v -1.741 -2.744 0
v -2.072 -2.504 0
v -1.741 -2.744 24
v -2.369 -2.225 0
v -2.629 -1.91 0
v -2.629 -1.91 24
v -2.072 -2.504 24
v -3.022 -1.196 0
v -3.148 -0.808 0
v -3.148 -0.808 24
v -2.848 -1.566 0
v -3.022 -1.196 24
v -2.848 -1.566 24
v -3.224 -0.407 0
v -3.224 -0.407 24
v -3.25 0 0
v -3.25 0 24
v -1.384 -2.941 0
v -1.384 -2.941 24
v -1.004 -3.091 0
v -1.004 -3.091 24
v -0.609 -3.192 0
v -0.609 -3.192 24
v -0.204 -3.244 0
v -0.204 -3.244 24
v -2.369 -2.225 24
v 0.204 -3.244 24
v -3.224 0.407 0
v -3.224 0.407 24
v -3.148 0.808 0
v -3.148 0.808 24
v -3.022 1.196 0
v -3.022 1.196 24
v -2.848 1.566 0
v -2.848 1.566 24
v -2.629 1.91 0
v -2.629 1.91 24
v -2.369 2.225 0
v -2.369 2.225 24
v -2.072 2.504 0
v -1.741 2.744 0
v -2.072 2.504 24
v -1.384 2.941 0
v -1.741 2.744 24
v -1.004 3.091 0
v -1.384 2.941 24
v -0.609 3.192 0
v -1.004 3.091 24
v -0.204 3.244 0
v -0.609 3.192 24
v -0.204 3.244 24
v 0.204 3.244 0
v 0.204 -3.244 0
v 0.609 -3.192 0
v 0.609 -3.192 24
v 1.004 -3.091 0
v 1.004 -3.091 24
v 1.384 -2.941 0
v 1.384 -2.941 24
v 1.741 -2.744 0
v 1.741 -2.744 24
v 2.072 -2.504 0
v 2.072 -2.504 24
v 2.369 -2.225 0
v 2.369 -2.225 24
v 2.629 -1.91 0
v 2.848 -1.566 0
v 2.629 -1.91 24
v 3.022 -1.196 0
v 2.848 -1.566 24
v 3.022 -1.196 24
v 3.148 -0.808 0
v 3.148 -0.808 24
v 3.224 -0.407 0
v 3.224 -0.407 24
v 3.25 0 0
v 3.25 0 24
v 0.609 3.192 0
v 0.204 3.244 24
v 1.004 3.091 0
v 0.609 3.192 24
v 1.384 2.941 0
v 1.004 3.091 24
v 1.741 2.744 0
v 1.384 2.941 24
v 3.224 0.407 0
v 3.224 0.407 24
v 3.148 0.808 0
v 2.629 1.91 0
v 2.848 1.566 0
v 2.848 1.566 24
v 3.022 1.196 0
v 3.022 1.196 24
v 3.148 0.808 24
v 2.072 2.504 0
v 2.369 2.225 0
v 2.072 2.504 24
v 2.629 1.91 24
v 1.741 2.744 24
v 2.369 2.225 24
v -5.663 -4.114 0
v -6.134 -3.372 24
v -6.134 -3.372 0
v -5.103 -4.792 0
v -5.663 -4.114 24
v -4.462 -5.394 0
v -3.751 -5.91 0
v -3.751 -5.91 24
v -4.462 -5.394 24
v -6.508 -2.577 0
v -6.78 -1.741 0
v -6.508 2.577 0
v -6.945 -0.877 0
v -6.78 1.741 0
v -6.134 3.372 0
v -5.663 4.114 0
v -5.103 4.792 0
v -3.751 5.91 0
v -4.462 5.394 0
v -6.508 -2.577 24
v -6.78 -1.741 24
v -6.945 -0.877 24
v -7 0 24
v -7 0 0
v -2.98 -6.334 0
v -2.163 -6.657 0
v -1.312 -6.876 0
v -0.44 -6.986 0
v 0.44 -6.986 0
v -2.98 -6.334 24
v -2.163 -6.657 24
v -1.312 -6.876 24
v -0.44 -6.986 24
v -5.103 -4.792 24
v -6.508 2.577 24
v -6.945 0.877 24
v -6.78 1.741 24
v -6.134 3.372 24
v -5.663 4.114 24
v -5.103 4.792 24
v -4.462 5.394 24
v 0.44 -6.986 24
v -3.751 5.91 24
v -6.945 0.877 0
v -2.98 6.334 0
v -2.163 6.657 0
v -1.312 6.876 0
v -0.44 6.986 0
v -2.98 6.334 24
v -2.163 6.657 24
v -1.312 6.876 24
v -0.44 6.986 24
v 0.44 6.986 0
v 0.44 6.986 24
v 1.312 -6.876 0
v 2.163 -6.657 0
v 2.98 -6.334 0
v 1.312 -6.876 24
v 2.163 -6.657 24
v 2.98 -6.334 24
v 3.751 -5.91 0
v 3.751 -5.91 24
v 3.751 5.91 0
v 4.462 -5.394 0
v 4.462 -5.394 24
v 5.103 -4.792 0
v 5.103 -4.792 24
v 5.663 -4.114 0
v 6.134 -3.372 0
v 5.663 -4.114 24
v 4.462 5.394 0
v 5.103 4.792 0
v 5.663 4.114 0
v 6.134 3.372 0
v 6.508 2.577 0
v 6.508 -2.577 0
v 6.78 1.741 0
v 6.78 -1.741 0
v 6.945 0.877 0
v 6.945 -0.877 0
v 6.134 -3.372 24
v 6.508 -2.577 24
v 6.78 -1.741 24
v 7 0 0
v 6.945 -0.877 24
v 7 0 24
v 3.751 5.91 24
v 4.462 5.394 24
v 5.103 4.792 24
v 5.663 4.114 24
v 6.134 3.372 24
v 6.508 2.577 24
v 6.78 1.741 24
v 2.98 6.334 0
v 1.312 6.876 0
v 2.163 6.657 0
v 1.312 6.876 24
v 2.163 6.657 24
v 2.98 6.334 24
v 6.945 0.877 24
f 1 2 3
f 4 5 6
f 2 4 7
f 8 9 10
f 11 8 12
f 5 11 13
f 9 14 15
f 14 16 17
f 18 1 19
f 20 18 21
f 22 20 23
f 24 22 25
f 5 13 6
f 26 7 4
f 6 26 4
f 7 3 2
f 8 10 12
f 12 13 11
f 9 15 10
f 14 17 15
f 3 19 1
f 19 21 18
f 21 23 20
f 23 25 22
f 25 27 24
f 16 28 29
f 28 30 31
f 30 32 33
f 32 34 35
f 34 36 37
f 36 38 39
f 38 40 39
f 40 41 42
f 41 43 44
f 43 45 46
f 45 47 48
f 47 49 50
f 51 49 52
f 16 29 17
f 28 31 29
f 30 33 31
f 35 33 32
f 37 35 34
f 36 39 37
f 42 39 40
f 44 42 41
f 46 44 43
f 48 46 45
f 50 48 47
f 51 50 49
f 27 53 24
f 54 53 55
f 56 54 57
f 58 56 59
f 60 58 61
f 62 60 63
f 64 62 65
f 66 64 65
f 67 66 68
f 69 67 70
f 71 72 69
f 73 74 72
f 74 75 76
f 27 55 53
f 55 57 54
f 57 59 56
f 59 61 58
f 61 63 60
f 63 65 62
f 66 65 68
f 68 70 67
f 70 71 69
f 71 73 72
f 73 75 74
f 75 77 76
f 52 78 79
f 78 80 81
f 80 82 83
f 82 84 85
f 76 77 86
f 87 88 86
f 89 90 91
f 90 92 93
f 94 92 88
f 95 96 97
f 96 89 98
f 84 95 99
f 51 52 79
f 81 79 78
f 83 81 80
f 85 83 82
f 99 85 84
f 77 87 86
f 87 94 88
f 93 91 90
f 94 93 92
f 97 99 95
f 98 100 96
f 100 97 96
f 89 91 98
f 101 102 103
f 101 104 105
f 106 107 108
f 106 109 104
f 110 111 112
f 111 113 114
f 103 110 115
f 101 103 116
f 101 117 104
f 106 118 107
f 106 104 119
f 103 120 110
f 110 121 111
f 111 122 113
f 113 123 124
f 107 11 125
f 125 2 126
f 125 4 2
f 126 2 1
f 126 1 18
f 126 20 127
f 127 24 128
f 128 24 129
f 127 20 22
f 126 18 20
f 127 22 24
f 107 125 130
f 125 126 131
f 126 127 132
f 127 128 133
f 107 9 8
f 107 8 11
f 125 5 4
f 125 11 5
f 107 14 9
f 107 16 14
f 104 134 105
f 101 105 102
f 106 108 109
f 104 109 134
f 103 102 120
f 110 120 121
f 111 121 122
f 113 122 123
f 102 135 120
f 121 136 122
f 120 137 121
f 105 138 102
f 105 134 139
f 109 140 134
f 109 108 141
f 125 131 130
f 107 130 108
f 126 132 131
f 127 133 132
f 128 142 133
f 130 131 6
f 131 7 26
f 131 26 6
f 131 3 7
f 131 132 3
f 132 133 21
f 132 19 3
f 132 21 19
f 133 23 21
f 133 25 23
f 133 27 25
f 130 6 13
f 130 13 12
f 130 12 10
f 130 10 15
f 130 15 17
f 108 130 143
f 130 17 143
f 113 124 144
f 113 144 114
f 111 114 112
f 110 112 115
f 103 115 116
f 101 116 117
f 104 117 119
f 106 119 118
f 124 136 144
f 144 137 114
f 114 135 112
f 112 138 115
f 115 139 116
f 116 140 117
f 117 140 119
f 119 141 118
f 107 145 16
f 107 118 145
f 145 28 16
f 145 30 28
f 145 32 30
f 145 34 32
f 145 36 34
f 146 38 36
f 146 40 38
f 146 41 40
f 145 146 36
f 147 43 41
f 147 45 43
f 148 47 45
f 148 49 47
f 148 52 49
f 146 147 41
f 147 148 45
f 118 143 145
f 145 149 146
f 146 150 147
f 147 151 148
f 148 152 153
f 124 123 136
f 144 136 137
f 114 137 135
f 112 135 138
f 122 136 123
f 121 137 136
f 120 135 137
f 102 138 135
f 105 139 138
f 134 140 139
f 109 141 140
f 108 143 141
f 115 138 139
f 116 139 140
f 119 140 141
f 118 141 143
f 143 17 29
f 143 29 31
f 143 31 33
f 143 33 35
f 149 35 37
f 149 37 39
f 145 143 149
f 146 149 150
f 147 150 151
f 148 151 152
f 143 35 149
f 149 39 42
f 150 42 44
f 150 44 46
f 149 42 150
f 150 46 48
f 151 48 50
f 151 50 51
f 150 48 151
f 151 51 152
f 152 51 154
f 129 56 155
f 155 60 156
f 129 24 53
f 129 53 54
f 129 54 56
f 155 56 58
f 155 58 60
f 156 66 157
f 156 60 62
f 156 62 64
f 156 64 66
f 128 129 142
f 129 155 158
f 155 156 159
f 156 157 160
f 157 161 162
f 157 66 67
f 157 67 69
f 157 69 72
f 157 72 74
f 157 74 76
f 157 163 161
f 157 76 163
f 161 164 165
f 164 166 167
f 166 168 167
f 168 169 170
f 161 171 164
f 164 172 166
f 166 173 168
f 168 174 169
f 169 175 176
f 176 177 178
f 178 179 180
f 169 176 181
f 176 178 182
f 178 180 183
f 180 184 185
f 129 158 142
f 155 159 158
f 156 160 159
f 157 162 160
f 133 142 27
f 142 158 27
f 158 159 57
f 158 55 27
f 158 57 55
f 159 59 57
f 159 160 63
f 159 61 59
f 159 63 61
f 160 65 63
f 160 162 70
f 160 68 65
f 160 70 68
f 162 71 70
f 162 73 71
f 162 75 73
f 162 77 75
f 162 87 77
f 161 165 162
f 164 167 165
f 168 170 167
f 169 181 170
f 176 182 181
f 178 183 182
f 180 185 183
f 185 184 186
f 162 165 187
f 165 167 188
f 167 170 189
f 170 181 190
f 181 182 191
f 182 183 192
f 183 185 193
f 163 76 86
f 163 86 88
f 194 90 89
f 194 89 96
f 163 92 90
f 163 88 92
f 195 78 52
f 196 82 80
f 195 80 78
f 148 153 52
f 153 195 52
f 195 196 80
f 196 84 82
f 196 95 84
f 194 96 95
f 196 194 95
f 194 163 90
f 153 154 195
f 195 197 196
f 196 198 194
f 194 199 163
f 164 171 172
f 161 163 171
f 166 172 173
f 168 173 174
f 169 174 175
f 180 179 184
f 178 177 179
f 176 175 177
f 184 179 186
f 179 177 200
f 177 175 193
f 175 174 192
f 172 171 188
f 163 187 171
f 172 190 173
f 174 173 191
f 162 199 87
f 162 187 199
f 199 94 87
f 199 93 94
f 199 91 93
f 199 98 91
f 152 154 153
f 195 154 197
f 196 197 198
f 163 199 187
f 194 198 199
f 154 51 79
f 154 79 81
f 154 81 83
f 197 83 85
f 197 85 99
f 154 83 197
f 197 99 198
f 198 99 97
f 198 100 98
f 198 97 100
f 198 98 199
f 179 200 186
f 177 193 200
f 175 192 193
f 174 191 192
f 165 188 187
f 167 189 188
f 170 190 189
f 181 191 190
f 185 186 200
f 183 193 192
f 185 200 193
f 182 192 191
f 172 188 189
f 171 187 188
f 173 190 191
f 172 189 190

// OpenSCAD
$fn = 50;

difference() {
	union() {
		cylinder(h = 24, r = 7.0);
	}
	union() {
		cylinder(h = 24, r = 3.25);
		cylinder(h = 24, r = 1.8);
	}
}
